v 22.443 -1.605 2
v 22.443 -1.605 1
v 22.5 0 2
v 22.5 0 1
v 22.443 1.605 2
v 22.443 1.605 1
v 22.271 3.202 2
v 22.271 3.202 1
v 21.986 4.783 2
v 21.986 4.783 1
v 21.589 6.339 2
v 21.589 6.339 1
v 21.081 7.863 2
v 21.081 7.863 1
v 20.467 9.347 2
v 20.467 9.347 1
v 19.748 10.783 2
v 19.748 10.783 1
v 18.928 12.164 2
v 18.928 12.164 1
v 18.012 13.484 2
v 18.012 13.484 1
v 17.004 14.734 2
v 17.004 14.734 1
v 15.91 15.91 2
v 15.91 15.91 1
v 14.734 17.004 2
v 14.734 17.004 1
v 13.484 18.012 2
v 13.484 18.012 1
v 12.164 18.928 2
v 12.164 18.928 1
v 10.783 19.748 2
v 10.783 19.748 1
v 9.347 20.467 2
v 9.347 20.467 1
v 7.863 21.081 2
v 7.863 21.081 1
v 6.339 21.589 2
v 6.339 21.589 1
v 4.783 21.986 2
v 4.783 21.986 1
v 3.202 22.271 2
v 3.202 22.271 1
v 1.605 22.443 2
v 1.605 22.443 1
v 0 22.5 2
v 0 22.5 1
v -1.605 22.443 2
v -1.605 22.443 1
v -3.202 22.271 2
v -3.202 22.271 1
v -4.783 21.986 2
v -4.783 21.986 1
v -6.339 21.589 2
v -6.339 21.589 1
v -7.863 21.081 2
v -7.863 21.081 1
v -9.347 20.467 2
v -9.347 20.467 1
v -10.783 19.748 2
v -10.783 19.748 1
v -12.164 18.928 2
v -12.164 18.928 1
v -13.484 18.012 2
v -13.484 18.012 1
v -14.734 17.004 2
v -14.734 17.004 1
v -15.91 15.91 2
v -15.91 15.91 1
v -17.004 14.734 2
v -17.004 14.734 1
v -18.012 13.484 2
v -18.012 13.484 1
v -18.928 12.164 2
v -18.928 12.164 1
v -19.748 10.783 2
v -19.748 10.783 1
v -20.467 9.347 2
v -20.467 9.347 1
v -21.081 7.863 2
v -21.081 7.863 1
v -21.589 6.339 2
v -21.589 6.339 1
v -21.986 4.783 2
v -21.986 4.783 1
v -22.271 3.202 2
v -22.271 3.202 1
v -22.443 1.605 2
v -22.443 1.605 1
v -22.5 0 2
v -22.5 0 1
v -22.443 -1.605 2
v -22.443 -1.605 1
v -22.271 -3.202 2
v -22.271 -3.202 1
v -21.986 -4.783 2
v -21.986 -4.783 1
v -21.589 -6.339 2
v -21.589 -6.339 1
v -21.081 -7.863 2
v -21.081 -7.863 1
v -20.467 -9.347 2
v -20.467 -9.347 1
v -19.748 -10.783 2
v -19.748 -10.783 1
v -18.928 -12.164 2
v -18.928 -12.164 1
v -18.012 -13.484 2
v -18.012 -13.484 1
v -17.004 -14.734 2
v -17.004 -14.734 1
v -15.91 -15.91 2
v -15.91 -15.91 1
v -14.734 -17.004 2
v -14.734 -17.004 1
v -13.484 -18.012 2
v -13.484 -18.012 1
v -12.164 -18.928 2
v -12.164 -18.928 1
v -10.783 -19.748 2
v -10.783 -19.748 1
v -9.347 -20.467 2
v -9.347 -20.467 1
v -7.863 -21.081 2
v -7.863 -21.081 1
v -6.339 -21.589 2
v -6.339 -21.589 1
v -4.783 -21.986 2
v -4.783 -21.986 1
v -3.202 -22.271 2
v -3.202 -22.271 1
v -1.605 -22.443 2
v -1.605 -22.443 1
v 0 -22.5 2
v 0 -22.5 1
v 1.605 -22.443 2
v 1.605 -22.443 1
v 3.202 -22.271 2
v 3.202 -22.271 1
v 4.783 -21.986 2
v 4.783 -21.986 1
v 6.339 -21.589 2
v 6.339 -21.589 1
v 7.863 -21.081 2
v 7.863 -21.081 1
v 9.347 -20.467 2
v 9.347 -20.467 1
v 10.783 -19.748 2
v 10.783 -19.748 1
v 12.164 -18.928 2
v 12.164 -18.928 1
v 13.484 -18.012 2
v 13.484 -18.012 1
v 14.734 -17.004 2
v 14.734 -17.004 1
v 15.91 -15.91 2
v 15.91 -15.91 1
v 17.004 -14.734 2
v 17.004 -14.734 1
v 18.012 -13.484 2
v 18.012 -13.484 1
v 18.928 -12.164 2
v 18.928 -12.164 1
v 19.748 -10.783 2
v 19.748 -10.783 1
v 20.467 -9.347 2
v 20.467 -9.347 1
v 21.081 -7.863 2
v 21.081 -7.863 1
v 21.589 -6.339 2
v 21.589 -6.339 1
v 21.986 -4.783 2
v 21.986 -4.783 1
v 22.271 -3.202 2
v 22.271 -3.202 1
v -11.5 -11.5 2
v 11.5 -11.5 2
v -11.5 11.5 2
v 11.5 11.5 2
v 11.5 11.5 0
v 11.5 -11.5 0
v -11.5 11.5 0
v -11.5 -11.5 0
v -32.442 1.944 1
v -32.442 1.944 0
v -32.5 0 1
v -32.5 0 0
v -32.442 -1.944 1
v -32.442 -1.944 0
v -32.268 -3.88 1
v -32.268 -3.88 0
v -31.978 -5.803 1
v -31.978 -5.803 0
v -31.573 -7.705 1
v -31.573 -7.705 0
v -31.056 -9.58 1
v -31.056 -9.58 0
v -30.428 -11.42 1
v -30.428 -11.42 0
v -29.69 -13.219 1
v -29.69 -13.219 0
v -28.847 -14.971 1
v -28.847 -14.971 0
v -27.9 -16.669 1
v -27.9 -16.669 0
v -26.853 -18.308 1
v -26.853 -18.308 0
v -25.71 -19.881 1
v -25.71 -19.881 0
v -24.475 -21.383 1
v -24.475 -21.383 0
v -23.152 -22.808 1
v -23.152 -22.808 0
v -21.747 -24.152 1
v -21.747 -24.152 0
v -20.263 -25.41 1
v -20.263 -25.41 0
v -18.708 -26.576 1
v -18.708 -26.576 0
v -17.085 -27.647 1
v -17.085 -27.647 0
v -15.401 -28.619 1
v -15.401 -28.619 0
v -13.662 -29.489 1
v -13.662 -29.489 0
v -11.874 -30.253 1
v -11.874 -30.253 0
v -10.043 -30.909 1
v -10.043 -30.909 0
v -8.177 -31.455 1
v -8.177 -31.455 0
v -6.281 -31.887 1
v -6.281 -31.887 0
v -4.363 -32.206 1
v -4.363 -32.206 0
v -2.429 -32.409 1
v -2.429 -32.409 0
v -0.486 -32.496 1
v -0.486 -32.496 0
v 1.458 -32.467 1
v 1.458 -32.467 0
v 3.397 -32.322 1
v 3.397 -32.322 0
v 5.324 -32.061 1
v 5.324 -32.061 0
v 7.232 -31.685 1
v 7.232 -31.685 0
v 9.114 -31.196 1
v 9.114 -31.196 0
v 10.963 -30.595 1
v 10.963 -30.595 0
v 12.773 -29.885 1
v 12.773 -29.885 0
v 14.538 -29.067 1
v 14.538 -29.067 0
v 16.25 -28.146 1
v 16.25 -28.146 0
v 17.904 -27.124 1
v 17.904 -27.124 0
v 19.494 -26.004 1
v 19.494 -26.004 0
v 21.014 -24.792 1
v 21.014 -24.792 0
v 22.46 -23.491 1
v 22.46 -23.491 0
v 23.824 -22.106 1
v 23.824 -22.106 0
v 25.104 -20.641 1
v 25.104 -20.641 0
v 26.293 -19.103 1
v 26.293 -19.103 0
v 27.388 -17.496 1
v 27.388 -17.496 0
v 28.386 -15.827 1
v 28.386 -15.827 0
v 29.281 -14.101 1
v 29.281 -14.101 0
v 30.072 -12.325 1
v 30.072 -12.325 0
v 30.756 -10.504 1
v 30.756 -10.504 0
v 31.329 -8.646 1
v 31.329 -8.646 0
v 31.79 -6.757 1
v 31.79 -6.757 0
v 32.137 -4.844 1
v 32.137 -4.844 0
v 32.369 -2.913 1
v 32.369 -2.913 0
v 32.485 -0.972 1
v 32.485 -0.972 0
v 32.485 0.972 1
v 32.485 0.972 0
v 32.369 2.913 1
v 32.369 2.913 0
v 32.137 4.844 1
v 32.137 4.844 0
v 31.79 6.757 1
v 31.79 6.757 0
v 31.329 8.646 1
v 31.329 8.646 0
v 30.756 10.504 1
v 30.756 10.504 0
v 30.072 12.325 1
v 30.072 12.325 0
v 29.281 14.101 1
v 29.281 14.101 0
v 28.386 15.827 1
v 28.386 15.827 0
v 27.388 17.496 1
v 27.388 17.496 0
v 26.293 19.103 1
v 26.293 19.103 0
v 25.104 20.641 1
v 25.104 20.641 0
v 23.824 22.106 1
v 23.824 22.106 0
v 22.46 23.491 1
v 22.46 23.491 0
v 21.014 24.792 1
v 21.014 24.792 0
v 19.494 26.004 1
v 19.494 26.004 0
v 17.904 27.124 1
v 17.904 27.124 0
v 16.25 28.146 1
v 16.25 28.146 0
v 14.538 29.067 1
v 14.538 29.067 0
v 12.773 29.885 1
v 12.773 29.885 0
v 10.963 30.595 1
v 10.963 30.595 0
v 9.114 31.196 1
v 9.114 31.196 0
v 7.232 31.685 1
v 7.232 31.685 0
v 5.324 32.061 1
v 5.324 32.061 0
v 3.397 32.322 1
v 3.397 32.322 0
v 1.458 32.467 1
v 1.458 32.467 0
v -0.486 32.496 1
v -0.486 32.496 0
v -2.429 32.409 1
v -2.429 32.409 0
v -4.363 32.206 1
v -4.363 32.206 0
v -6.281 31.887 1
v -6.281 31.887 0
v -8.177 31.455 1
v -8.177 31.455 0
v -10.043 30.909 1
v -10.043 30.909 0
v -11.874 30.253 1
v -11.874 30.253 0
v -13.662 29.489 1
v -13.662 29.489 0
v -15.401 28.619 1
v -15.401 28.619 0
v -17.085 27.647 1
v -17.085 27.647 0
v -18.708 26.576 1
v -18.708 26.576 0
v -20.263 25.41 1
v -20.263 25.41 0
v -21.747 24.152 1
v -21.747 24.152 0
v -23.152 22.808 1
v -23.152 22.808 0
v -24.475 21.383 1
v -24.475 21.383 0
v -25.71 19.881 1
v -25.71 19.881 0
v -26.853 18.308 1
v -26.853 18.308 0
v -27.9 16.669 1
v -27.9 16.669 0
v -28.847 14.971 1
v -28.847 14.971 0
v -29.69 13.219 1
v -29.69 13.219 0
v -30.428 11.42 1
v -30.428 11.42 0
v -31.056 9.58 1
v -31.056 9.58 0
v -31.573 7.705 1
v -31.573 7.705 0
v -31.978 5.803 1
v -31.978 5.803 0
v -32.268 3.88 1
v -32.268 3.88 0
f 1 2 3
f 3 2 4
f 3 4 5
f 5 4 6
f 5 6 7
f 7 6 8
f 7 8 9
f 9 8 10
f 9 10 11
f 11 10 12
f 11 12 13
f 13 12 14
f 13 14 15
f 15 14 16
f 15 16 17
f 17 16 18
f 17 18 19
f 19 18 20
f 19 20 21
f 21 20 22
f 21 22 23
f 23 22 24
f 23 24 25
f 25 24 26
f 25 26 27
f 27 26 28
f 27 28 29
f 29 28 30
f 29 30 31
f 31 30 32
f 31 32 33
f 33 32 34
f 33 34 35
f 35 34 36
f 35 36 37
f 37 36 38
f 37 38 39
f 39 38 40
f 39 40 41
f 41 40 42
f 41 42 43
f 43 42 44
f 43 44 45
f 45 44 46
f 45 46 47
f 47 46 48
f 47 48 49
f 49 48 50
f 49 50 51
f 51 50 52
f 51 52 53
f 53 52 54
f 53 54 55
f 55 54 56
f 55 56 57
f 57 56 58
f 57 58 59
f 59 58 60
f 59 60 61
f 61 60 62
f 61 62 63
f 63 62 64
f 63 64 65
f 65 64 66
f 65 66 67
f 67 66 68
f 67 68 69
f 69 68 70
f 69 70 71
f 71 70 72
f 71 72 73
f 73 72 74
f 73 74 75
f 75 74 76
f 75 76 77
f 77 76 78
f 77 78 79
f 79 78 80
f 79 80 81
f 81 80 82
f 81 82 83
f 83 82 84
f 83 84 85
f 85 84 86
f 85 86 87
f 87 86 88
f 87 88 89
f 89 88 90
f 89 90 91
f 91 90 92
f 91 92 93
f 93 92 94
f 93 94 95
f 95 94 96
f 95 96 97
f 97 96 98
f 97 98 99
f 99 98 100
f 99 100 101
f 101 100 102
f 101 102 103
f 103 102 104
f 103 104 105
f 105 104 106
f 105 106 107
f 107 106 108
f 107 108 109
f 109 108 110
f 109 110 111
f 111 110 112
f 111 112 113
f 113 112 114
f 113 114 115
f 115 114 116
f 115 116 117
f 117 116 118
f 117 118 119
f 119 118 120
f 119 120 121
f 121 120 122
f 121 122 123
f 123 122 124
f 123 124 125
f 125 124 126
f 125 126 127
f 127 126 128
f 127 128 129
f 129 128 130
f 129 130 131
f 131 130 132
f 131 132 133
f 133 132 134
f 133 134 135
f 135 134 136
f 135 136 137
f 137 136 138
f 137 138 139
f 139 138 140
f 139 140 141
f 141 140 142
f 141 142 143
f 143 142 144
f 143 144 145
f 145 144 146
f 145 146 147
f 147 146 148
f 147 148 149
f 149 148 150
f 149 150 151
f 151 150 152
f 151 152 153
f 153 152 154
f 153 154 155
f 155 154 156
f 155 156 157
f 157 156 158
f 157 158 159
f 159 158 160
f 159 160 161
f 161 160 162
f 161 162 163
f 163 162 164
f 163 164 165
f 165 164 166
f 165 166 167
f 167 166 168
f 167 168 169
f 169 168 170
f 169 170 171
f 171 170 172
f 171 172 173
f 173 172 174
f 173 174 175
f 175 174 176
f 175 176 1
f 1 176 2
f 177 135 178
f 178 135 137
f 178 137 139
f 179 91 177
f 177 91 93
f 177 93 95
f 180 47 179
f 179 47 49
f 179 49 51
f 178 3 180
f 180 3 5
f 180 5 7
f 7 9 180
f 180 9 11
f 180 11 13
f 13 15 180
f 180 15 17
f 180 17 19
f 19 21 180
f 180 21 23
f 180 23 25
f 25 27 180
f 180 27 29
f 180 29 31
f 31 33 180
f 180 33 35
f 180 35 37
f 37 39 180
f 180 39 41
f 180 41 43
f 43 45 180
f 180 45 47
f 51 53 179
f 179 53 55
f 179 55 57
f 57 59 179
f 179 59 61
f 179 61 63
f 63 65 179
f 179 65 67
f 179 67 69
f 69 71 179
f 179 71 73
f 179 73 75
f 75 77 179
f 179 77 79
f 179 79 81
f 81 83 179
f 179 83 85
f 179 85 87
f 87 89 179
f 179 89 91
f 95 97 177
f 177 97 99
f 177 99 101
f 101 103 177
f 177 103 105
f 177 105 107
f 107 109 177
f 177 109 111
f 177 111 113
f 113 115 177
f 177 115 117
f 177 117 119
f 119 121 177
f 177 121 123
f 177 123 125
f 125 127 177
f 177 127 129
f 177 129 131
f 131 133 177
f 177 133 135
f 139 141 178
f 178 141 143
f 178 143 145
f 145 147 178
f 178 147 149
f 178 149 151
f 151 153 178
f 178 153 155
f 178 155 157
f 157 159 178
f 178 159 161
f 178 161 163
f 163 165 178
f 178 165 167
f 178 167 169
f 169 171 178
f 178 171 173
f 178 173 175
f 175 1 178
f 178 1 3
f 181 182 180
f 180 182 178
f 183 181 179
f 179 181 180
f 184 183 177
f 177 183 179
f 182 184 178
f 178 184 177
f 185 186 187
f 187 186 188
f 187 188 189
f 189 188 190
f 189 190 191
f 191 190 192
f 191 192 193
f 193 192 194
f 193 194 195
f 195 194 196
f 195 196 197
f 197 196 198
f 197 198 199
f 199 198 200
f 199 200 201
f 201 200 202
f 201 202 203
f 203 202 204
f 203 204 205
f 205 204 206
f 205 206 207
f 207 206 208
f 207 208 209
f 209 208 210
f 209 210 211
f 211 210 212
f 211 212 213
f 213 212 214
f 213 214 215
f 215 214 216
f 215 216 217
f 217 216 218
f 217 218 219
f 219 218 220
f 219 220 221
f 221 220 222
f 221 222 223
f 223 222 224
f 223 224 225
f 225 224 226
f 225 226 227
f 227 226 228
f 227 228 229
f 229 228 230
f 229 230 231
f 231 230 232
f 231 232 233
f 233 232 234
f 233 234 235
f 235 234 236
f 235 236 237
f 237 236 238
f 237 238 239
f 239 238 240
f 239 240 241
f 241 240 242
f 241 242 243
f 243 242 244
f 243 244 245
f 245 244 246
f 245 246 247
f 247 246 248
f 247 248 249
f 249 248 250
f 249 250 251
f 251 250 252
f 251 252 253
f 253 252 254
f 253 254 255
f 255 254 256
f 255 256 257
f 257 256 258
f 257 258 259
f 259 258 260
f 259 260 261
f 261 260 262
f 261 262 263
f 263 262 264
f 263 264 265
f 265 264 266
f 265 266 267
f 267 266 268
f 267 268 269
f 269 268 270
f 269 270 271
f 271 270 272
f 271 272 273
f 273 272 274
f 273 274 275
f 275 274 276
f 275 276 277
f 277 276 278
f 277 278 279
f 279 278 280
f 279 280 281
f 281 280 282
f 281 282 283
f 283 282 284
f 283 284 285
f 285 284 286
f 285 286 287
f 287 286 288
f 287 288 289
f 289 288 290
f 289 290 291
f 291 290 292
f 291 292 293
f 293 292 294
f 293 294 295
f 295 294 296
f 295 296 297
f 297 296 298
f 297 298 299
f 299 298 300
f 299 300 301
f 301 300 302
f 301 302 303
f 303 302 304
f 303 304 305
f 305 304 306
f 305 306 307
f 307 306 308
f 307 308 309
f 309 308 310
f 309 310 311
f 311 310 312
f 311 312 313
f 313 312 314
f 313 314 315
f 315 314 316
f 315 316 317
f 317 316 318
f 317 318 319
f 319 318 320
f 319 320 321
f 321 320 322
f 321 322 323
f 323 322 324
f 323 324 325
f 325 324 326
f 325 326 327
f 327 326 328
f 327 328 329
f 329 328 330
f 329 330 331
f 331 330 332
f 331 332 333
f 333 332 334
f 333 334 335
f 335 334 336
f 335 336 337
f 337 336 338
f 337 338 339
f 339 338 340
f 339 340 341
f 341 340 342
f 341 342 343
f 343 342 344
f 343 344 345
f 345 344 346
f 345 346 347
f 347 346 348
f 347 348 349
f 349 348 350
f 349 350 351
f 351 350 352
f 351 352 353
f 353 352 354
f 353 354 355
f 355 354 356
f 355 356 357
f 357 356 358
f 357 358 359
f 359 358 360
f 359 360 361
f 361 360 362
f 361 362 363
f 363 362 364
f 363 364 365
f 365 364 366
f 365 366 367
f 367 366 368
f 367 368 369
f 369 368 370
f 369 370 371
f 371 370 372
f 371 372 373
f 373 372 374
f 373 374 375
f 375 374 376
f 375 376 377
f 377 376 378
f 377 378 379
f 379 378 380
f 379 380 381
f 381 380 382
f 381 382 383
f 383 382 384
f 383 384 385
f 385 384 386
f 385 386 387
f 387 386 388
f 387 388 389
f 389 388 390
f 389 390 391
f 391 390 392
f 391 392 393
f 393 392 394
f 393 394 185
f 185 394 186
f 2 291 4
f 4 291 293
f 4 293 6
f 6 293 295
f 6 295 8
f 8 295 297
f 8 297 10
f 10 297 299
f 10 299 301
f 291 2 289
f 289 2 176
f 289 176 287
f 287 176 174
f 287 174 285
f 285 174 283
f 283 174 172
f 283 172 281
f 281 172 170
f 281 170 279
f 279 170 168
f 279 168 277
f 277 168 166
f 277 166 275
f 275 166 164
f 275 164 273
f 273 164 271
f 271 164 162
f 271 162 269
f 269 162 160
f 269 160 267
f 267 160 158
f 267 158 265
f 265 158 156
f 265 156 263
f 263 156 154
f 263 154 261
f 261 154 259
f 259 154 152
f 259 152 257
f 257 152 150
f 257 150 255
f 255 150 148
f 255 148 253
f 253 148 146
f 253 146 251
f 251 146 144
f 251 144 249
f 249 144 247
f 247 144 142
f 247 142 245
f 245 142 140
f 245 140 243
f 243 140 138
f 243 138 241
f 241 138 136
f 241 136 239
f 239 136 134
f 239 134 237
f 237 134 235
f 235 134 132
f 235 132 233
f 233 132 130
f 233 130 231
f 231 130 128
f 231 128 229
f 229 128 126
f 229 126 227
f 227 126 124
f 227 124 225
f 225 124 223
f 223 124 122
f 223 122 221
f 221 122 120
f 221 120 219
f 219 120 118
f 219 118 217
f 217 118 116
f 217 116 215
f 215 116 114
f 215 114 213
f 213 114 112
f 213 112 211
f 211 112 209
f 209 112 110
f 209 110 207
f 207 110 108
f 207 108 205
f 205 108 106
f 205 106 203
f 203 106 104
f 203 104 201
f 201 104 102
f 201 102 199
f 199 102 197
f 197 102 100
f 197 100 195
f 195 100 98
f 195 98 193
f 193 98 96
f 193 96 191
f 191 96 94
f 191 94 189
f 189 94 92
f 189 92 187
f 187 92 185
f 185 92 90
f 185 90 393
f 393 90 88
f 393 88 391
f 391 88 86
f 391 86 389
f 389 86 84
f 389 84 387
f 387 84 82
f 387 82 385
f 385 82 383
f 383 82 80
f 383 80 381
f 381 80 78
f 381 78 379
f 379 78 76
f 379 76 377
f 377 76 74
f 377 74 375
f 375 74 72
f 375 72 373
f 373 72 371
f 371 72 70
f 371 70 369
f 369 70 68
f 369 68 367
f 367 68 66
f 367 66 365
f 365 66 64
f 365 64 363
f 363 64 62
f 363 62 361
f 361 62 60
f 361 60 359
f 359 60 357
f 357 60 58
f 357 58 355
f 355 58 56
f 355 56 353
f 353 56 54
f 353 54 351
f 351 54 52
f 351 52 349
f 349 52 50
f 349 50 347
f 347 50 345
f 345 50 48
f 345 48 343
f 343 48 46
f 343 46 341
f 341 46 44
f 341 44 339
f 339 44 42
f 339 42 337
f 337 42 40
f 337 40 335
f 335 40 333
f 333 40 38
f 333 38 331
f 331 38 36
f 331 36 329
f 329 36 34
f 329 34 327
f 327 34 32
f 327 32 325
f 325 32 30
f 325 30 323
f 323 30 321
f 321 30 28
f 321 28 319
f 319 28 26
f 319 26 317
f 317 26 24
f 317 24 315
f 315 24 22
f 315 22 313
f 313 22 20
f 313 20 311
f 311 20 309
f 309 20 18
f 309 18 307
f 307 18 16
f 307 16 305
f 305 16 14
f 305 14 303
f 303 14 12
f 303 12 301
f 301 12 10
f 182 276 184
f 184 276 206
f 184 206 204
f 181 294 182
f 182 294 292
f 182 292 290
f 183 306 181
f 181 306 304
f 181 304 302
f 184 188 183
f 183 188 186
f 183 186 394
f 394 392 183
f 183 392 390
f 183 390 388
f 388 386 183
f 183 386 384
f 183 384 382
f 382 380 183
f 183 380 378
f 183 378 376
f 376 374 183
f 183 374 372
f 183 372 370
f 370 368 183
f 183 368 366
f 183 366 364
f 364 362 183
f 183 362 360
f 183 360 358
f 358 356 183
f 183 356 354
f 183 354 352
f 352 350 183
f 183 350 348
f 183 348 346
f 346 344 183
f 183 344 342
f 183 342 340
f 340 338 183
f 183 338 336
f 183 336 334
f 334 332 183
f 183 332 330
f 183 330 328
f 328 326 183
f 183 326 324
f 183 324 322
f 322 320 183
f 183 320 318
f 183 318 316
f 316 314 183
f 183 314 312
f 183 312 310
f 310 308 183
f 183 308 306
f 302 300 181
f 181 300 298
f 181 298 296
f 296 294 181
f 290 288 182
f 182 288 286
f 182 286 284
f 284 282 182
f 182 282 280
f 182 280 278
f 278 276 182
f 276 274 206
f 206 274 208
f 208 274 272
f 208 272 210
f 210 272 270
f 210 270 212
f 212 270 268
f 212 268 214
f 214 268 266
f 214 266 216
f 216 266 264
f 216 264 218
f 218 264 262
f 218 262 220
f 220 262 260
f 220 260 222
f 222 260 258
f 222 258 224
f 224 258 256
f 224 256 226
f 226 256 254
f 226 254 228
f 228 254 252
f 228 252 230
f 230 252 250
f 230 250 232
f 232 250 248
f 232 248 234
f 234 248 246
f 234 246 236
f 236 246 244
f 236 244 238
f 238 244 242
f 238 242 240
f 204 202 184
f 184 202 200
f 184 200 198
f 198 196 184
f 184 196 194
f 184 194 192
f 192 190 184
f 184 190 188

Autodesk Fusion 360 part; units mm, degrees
sketch "Sketch1" plane through (0, 0, 0) normal (0, 0, 1) x (1, 0, 0)
  circle A0 centre (0, 0) radius 32.5
  line L0 (-11.5, 11.5) -> (11.5, 11.5)
  line L1 (11.5, 11.5) -> (11.5, -11.5)
  line L2 (11.5, -11.5) -> (-11.5, -11.5)
  line L3 (-11.5, -11.5) -> (-11.5, 11.5)
  point P0 (11.5, 0)
  point P1 (0, 11.5)
  dimension "d1" = 65
  dimension "d2" = 23
extrude "Extrude1" add sketch "Sketch1" along normal blind 1
sketch "Sketch2" plane through (0, 0, 1) normal (0, 0, 1) x (-1, 0, 0)
  line L0 (-11.5, 11.5) -> (11.5, 11.5)
  line L1 (11.5, 11.5) -> (11.5, -11.5)
  line L2 (11.5, -11.5) -> (-11.5, -11.5)
  line L3 (-11.5, -11.5) -> (-11.5, 11.5)
  circle A0 centre (0, 0) radius 32.5
  line L4 (11.5, -11.5) -> (-11.5, -11.5)
  line L5 (-11.5, -11.5) -> (-11.5, 11.5)
  line L6 (-11.5, 11.5) -> (11.5, 11.5)
  line L7 (11.5, 11.5) -> (11.5, -11.5)
  circle A1 centre (0, 0) radius 22.5
  dimension "d5" = 45
extrude "Extrude2" add sketch "Sketch2" along normal blind 1 contours A1
